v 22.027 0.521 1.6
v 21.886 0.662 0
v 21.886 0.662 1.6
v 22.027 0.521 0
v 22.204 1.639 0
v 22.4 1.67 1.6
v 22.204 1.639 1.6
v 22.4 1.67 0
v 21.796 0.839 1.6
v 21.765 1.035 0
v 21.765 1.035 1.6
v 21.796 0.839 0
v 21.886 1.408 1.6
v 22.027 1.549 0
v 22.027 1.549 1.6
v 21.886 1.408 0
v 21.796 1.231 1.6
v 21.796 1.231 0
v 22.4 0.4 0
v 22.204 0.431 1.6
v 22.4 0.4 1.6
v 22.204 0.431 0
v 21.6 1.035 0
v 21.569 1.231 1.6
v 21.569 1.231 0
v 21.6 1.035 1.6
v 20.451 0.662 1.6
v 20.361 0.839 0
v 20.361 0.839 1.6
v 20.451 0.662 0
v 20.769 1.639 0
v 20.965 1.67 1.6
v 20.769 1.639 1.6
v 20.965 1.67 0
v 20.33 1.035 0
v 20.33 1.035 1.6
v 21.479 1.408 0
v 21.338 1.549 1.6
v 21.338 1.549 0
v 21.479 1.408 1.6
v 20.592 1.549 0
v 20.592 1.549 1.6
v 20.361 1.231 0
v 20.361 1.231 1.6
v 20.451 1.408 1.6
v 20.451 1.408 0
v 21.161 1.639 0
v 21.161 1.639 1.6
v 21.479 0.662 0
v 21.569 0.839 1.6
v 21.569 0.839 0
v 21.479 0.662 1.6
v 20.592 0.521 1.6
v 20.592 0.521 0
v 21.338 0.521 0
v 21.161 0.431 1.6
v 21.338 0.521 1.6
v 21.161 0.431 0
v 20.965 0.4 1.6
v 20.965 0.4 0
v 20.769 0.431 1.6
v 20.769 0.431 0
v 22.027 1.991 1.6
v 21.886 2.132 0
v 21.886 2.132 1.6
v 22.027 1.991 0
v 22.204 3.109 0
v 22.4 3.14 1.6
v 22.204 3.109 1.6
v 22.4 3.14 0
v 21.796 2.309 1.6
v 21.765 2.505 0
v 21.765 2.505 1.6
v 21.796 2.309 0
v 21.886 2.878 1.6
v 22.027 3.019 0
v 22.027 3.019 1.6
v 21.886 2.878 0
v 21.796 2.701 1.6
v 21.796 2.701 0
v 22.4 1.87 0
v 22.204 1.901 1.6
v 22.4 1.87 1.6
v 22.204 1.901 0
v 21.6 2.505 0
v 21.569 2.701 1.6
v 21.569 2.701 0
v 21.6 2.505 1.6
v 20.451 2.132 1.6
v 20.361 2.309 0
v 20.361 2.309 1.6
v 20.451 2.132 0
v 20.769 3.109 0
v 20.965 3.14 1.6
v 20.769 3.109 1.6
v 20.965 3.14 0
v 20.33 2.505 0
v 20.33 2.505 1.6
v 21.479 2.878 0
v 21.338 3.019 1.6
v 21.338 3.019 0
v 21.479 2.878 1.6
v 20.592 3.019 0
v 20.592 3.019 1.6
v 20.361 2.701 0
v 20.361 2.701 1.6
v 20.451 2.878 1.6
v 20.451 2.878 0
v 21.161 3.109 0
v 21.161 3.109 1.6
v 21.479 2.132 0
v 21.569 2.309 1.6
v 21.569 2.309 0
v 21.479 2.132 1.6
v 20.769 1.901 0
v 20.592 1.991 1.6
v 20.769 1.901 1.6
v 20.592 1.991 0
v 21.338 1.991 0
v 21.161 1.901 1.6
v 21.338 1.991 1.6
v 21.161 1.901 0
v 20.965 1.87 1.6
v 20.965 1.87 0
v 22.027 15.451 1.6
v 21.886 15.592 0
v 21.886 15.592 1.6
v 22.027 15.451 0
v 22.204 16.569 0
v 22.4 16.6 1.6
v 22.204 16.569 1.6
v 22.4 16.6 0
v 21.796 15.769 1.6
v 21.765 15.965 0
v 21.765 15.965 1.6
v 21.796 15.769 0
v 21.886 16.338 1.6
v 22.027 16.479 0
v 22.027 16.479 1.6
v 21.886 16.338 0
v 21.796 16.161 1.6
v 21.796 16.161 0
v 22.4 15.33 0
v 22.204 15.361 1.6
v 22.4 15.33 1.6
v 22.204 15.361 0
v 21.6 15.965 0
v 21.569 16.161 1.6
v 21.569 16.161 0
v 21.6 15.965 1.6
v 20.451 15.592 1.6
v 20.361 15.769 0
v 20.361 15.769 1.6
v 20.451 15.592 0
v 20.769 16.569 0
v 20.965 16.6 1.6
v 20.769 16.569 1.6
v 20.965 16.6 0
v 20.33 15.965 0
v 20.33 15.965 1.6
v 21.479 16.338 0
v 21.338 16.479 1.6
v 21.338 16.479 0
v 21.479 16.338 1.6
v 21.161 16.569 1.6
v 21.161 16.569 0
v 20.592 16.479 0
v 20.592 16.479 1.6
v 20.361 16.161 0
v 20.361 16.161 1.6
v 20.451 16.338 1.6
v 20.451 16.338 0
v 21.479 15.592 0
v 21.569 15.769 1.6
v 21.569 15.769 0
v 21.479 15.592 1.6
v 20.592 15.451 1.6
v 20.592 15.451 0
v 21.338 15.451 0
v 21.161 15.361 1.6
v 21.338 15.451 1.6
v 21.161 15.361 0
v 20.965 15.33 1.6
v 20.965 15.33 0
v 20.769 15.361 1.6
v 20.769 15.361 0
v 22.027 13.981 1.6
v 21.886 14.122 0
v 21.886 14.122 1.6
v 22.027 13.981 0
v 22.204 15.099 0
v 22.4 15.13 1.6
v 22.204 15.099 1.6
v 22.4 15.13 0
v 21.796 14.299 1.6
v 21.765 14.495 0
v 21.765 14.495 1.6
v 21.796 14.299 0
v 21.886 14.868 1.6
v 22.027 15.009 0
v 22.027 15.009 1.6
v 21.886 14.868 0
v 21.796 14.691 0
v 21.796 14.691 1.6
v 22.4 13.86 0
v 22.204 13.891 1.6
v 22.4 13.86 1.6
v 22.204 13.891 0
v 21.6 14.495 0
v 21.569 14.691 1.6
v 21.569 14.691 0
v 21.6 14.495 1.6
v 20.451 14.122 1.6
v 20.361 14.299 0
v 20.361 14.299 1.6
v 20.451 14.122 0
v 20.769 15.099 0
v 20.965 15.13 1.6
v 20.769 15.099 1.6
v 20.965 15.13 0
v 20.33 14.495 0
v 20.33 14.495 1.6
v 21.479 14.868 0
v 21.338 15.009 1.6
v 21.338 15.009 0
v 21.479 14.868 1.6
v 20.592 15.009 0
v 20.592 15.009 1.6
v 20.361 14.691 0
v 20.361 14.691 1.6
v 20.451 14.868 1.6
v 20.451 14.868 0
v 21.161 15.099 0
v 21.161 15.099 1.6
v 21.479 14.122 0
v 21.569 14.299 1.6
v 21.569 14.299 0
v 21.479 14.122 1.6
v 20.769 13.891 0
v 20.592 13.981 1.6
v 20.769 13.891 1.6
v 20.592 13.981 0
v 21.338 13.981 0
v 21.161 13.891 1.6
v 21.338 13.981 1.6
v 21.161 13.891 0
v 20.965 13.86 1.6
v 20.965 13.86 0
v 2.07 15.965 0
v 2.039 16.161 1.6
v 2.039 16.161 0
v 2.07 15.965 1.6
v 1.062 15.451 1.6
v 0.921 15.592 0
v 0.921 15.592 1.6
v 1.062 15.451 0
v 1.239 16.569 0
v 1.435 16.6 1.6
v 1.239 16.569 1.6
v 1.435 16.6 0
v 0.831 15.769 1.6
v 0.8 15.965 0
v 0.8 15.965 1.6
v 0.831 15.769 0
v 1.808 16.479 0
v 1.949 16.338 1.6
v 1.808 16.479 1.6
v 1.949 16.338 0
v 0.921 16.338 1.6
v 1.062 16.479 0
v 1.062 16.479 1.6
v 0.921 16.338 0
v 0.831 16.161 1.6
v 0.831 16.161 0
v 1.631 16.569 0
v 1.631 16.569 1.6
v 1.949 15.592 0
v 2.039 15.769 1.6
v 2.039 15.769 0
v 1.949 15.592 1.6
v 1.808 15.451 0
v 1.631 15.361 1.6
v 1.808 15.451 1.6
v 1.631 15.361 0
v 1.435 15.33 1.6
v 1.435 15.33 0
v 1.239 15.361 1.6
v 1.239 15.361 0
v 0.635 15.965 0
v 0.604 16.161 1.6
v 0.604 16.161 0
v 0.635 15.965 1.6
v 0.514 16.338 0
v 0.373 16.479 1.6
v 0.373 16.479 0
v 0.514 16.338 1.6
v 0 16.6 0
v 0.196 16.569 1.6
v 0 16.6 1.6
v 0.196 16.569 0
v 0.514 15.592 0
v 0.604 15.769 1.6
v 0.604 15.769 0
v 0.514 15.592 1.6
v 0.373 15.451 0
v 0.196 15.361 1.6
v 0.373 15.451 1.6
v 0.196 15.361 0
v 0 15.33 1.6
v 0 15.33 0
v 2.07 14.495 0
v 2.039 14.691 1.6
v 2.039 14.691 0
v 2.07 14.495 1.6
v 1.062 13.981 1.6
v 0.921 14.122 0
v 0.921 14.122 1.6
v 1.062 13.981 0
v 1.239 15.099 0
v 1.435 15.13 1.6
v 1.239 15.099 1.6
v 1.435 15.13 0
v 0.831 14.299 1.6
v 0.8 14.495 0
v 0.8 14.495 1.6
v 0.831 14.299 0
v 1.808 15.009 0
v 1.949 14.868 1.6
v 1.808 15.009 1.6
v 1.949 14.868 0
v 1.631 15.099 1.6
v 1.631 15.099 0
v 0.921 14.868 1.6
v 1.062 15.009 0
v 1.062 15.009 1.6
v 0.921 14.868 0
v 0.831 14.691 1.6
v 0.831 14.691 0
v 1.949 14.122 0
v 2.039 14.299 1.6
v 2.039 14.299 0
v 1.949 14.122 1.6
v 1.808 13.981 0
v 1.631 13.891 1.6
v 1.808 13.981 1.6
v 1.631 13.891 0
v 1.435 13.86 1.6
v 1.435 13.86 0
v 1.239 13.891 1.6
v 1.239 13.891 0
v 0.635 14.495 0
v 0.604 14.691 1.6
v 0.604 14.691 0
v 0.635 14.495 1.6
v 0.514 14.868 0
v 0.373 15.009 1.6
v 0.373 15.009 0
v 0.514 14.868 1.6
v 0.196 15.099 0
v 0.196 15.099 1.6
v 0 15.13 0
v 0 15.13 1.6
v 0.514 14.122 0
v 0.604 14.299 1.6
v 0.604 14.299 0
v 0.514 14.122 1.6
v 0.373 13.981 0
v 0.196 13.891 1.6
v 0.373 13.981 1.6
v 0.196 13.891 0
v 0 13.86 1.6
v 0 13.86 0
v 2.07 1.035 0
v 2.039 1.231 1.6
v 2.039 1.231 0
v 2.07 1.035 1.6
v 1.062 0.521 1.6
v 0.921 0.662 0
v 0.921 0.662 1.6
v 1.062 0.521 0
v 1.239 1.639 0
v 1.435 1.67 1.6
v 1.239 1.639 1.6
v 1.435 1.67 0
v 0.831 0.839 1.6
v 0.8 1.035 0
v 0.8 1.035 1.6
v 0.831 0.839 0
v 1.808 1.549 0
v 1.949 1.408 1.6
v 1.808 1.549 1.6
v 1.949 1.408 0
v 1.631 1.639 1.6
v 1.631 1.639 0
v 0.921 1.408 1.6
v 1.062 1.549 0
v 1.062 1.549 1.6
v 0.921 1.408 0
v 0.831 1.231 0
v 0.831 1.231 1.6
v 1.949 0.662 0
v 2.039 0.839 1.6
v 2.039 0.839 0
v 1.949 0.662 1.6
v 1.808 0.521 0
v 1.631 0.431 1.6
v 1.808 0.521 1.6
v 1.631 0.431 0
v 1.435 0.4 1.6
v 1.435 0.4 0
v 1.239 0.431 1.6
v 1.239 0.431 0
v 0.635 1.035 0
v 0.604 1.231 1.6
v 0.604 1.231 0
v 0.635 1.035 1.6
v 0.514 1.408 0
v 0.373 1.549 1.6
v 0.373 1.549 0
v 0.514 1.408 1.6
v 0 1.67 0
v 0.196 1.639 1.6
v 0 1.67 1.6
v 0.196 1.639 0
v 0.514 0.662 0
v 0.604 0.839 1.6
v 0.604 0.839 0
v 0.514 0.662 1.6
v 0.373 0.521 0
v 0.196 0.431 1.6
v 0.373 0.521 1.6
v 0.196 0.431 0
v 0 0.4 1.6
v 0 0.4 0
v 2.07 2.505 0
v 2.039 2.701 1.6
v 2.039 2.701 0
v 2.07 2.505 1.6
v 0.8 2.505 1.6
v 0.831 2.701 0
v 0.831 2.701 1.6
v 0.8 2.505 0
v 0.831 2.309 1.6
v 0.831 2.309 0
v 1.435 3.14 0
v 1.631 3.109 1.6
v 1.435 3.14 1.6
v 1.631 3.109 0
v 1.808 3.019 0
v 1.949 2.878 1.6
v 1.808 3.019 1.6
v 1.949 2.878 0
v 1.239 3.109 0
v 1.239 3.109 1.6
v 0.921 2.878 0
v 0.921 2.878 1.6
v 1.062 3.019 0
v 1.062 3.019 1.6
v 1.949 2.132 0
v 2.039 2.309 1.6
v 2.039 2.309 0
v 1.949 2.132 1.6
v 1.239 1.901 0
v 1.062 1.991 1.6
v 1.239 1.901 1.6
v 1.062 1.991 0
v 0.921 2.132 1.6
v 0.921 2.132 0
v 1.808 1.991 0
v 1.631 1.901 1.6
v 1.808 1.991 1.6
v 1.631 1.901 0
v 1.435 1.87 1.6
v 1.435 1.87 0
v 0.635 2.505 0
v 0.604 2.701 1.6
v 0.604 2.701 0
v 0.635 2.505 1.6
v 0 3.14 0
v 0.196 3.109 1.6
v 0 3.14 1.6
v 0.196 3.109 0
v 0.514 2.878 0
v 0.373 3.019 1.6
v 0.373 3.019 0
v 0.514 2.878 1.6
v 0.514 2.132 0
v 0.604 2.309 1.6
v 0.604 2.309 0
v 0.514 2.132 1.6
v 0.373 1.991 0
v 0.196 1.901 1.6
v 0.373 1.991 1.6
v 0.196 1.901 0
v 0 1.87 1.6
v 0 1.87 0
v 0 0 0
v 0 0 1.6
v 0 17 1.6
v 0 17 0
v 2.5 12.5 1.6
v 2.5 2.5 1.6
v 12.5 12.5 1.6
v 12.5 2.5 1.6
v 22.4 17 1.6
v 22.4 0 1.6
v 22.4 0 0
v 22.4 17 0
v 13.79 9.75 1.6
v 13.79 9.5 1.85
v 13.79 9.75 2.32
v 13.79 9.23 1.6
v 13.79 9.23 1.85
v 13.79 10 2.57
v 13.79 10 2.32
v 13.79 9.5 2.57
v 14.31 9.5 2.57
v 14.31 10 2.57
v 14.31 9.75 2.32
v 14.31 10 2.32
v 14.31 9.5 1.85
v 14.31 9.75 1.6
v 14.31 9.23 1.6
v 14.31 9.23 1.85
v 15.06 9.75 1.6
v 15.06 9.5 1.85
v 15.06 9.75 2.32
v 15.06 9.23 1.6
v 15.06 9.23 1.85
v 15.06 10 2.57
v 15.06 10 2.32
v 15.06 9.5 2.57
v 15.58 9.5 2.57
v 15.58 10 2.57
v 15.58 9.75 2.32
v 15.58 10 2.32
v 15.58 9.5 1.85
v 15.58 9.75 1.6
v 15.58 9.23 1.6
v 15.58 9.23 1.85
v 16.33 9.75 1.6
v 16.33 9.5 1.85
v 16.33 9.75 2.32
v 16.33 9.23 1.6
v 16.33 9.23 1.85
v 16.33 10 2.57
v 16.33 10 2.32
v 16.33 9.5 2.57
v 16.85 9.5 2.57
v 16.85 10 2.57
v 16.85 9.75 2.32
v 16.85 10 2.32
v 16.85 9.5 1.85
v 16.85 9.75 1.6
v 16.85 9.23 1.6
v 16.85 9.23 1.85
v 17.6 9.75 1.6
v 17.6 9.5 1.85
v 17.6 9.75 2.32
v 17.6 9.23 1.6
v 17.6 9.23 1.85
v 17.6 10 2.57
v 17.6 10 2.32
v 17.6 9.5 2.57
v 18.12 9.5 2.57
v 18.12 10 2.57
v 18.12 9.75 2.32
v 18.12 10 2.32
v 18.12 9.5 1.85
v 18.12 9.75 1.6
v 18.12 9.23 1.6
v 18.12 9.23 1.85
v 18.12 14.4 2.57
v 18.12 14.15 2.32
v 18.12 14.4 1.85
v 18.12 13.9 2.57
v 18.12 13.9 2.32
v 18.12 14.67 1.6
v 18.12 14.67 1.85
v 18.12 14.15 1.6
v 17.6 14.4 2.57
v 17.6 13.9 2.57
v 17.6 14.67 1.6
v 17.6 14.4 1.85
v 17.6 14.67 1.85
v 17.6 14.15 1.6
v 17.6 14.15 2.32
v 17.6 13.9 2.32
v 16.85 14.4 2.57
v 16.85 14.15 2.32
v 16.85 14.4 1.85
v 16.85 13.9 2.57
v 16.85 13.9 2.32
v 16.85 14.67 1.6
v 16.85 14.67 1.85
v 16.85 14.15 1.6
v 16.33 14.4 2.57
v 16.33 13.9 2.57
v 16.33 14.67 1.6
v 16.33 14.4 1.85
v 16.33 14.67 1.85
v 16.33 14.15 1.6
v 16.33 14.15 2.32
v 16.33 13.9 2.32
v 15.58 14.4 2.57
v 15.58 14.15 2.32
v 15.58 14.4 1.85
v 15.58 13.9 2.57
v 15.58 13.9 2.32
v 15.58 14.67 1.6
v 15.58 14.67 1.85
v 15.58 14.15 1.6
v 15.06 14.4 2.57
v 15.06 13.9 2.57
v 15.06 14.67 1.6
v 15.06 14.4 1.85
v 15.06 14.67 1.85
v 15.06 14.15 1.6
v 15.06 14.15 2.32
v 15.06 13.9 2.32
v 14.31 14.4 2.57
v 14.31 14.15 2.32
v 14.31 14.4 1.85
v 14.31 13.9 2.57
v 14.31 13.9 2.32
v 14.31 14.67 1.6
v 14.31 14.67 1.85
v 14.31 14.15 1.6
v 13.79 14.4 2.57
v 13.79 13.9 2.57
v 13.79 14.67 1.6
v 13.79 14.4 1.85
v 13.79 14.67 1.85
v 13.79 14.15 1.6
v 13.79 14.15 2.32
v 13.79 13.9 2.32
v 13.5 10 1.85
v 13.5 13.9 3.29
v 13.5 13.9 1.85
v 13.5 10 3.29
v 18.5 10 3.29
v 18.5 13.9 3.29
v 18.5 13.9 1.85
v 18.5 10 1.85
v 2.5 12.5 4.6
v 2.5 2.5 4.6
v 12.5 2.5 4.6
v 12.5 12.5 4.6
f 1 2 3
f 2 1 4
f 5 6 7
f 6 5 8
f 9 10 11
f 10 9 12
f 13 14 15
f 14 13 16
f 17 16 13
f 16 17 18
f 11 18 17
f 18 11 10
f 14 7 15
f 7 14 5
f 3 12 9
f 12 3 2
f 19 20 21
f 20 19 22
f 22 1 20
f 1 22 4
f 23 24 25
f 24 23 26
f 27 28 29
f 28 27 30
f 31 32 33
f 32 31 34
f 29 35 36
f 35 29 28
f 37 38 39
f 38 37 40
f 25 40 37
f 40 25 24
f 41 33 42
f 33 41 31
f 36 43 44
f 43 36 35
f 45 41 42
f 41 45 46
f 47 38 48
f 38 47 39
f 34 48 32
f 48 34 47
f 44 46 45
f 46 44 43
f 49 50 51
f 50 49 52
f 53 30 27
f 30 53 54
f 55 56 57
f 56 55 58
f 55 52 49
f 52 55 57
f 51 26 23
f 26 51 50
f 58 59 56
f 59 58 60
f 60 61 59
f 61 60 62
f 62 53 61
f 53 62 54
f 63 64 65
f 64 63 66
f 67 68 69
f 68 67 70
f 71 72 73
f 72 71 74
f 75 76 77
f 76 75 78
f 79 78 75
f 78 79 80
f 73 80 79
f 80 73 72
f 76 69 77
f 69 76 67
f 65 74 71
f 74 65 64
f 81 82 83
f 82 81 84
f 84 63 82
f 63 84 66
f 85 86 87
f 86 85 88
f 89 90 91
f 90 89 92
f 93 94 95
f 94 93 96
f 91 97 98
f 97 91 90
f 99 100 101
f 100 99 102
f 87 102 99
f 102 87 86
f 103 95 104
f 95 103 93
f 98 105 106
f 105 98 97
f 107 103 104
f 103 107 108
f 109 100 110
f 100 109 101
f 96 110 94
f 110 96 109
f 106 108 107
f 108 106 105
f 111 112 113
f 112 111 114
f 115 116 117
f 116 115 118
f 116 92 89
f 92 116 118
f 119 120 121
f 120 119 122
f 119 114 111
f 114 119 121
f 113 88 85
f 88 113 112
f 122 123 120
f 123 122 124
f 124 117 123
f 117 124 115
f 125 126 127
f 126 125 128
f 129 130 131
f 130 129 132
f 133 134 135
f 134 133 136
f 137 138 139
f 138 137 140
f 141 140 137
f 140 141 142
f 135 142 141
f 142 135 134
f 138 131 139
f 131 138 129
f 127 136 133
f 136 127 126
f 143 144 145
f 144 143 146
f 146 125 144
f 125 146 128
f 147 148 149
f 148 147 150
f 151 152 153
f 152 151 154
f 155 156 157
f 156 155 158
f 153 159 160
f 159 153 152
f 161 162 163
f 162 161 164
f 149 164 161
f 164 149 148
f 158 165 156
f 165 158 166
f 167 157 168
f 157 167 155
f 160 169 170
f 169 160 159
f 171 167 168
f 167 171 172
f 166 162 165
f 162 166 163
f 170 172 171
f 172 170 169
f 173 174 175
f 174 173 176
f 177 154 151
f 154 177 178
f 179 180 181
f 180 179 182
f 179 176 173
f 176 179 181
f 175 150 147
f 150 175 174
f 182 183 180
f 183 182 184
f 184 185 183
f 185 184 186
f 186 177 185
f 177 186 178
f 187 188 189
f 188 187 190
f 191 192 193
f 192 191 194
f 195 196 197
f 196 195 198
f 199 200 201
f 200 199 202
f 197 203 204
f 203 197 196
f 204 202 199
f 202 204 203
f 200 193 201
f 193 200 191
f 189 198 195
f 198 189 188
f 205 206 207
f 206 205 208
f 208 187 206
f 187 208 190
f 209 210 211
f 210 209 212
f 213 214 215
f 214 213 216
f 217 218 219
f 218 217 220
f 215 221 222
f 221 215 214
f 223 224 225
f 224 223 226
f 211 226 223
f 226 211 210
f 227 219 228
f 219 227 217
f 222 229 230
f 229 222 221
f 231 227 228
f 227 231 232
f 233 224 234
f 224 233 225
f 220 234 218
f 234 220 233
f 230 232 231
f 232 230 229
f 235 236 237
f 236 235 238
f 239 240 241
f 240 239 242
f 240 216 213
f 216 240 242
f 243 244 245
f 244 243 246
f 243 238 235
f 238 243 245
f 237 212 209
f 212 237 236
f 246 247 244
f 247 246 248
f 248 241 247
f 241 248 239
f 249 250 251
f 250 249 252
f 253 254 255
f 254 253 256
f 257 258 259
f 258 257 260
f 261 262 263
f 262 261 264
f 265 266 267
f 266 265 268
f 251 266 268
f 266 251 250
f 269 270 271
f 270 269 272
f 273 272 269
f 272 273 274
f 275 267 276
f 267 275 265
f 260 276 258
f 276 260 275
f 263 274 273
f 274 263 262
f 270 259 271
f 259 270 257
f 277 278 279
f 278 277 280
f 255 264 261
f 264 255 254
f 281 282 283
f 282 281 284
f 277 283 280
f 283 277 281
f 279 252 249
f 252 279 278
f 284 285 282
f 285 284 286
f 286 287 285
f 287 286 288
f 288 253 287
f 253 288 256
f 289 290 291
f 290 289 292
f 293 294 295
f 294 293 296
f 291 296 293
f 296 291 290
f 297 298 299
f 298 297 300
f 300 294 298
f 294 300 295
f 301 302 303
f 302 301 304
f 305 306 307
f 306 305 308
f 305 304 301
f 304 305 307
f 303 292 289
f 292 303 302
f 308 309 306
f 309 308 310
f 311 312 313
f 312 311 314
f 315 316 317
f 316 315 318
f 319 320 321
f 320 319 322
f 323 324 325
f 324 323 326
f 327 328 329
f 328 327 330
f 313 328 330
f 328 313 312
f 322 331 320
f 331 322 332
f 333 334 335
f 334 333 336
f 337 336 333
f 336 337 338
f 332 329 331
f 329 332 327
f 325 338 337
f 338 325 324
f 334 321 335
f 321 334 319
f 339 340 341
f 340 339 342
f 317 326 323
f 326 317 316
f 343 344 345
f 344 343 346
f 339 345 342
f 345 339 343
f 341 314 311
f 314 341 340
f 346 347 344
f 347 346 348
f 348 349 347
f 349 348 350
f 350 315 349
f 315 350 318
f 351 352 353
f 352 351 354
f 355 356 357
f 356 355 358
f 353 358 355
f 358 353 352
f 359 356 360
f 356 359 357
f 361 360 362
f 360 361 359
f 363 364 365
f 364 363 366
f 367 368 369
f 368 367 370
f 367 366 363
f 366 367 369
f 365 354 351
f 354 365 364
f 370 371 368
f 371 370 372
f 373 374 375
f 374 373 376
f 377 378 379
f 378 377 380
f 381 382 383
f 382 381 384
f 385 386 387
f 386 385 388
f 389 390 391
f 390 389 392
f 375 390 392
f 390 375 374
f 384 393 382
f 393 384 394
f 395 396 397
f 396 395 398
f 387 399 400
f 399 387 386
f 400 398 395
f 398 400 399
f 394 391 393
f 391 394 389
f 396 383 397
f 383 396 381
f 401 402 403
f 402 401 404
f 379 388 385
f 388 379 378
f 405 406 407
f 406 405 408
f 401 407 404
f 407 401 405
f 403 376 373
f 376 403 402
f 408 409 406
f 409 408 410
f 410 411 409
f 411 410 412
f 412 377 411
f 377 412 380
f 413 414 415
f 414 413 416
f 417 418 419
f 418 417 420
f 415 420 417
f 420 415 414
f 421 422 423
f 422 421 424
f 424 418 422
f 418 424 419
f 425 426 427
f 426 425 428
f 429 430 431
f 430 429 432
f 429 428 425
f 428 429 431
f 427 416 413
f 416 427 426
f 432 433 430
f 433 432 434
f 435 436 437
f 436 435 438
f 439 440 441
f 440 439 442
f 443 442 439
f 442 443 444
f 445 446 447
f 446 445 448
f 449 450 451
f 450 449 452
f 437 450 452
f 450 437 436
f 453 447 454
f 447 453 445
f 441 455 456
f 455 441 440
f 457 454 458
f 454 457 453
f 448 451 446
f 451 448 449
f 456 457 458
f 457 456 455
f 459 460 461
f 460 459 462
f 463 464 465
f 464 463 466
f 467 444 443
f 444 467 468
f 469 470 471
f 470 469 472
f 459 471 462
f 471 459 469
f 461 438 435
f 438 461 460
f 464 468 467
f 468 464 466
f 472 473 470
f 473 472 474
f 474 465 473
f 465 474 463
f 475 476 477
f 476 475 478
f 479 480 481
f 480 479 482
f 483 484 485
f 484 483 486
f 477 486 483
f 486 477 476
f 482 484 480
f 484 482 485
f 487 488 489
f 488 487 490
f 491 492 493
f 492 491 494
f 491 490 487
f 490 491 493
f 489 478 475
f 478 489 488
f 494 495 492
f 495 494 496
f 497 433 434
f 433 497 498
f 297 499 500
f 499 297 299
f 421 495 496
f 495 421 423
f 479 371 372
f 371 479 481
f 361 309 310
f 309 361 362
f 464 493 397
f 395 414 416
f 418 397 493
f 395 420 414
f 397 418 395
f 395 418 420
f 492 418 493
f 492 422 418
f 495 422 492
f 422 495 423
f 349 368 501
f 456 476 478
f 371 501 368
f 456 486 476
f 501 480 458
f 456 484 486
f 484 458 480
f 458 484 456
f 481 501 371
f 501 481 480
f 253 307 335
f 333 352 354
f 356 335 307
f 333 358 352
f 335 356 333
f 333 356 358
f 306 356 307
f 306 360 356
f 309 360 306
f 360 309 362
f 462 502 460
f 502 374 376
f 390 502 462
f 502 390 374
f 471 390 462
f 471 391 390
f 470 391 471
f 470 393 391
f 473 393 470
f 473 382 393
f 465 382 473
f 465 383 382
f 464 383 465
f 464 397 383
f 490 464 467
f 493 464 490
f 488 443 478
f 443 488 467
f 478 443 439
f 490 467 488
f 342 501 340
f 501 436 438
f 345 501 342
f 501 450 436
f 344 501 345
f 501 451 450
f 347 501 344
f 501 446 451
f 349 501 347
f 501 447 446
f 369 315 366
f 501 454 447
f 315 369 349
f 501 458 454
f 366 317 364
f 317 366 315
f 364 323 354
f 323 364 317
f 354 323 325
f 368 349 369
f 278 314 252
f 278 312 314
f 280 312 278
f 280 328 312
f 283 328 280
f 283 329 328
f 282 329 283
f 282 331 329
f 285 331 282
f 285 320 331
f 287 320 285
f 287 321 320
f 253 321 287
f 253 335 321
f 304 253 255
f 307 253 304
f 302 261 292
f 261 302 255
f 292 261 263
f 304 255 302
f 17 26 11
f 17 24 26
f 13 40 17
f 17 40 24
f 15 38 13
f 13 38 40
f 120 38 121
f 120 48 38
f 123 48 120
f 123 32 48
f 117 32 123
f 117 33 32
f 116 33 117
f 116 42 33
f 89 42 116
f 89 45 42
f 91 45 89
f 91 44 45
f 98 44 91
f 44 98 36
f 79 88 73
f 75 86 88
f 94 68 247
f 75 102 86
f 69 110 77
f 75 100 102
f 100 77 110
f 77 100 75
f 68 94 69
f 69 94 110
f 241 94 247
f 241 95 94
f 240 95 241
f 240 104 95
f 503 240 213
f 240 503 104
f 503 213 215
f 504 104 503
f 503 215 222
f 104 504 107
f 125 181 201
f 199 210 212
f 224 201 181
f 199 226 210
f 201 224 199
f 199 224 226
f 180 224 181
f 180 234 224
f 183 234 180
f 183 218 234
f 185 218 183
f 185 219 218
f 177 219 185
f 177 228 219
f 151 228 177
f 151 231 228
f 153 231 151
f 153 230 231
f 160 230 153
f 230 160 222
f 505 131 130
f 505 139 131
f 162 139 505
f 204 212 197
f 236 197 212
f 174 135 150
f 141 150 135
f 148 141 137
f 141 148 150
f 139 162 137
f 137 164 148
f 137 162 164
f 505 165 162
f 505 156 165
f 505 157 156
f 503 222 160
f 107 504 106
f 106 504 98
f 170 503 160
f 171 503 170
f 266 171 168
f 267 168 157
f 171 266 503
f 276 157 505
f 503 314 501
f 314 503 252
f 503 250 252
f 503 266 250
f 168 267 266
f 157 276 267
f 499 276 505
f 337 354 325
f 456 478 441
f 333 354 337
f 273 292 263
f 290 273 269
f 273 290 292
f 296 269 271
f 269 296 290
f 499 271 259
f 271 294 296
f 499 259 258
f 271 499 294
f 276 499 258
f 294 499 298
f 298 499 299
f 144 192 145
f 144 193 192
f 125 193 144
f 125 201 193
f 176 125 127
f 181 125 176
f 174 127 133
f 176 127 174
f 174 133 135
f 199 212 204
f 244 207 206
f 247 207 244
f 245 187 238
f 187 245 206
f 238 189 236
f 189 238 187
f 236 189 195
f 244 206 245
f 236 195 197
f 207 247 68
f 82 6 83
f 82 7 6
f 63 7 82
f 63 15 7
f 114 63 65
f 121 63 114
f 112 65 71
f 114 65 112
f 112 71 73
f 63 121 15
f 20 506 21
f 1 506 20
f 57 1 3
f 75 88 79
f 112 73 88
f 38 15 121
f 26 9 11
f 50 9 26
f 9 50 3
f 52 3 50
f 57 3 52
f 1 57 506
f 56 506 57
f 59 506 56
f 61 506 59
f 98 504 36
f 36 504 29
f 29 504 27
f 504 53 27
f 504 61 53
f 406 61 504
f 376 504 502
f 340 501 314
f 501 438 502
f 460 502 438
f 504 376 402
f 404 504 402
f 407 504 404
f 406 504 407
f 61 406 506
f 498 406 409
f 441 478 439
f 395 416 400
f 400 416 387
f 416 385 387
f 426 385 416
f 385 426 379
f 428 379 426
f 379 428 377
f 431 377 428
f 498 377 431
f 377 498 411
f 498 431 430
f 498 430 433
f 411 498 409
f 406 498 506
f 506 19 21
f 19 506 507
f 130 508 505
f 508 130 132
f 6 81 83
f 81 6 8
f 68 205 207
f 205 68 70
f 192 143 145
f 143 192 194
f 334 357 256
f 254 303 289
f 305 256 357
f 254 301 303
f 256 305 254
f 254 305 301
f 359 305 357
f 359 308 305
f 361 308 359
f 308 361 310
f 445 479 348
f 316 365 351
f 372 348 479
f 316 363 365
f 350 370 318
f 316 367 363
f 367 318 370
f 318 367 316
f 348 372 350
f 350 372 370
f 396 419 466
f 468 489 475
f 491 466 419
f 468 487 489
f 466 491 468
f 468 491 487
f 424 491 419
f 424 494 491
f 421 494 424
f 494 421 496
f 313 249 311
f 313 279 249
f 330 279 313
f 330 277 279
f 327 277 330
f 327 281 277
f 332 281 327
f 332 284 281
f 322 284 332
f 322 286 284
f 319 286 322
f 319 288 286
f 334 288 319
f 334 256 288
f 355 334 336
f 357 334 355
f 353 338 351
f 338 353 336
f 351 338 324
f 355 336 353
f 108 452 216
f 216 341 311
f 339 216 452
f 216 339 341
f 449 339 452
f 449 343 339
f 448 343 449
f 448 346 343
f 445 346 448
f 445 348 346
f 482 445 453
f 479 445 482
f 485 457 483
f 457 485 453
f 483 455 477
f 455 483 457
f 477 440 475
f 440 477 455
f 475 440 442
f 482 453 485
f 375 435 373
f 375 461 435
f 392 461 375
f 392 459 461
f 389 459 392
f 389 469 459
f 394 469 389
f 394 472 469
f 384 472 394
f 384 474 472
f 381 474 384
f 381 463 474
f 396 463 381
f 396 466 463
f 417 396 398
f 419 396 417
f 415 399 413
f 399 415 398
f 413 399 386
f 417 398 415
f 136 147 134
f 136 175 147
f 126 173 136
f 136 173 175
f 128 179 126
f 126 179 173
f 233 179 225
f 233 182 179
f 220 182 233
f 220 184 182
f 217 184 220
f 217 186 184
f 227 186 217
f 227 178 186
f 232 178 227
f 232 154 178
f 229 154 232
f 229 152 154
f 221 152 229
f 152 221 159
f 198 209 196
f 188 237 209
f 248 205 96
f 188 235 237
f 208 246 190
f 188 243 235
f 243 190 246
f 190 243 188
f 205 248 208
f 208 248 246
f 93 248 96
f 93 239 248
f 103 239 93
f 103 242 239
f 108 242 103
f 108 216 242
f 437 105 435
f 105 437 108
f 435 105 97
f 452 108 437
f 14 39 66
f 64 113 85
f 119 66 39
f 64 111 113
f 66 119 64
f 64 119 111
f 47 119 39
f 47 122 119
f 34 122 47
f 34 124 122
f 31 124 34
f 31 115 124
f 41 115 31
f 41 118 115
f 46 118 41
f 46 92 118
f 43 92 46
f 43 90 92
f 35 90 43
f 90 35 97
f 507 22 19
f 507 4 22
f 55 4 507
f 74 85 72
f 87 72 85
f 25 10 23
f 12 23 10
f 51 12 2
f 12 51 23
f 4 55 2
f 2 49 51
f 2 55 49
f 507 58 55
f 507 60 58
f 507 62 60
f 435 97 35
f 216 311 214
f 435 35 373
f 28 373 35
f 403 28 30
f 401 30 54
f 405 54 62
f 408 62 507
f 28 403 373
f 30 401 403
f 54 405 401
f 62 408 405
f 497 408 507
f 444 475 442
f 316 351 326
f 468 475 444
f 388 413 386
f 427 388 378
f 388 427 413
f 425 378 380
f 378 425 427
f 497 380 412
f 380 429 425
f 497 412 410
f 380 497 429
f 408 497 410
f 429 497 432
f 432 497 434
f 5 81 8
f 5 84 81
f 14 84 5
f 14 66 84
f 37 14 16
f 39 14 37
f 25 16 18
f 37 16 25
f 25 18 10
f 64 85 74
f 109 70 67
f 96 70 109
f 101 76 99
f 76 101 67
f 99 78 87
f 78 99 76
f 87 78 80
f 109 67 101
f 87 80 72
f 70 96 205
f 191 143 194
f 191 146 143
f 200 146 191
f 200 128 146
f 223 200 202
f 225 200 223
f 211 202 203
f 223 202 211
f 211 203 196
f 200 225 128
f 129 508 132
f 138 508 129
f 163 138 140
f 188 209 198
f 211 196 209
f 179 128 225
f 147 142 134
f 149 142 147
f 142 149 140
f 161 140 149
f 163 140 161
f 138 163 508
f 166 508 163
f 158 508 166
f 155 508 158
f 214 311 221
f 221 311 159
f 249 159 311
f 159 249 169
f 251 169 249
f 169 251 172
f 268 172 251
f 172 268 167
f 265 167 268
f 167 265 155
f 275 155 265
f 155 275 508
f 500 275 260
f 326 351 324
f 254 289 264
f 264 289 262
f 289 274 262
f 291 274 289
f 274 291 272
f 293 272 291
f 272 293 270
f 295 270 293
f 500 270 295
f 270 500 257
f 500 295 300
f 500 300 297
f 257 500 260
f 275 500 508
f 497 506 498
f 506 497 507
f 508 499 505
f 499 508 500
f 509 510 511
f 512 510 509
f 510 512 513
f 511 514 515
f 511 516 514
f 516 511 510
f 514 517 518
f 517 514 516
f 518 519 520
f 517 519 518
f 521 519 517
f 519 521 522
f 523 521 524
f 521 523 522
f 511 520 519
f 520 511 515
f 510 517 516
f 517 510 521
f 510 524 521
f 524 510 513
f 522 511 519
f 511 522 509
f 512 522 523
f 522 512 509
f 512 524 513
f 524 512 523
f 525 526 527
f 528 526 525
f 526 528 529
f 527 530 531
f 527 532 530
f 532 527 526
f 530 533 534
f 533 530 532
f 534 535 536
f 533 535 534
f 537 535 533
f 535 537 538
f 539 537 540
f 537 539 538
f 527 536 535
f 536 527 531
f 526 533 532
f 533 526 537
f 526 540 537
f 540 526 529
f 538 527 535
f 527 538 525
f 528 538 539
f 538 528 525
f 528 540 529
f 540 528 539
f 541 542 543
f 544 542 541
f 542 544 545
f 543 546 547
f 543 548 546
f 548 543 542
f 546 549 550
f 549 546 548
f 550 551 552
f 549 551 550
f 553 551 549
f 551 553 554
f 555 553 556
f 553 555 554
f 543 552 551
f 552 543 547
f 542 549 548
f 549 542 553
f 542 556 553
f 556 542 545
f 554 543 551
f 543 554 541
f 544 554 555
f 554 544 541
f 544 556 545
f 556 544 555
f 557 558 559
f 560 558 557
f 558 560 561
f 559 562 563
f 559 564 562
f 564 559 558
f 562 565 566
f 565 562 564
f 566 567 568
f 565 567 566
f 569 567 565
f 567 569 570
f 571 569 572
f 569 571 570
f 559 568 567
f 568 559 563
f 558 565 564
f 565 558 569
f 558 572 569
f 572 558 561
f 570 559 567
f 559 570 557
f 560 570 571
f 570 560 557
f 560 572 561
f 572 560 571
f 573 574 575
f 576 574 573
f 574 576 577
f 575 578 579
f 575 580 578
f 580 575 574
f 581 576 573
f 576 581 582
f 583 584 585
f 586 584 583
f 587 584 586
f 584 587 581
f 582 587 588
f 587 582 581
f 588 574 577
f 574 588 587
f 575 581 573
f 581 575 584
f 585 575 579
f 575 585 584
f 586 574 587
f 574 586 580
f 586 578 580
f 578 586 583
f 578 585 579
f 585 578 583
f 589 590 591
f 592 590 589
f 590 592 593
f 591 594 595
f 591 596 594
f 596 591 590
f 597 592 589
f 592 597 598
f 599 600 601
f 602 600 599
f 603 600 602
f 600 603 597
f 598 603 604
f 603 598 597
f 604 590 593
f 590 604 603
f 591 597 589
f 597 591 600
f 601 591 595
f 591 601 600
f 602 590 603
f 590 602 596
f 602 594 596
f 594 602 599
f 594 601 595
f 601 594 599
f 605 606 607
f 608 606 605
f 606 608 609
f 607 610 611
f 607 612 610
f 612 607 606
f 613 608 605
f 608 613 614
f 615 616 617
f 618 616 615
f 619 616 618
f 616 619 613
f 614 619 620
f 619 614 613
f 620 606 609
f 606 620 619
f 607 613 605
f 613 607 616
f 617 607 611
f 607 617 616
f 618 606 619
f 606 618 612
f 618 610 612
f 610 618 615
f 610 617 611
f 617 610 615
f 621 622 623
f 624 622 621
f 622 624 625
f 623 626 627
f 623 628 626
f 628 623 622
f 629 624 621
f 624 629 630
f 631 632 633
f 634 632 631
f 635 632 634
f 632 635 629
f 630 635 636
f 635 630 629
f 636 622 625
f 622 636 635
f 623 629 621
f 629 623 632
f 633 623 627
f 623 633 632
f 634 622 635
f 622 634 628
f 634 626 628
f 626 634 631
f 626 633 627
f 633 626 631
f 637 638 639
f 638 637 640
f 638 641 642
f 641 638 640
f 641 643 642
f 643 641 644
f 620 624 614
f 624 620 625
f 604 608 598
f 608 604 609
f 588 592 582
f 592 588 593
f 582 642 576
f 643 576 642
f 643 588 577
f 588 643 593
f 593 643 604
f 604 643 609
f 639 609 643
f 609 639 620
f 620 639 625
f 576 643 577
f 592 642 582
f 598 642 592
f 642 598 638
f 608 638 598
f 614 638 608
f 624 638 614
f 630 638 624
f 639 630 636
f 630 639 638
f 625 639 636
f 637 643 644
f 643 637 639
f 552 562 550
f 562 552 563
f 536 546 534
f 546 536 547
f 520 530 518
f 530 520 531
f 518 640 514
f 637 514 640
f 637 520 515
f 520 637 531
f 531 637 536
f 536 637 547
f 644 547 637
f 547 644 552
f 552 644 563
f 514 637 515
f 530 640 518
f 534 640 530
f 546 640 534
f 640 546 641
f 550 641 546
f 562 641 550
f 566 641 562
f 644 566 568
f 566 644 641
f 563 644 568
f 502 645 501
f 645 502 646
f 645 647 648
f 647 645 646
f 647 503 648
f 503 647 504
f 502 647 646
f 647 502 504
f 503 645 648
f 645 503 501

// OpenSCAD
module board() {
	cube([22.4, 17, 1.6]);
}

module holes() {
	translate([(1.27/2) + 0.8, (1.27/2) +  0.4,-0.1])
	cylinder(2, 1.27/2, 1.27/2, $fn=20);
	translate([0, (1.27)/2 + 0.4,-0.1])
	cylinder(2, 1.27/2, 1.27/2, $fn=20);
	
	translate([(1.27/2) + 0.8, (1.27/2) +  0.4 + 1.47,-0.1])
	cylinder(2, 1.27/2, 1.27/2, $fn=20);
	translate([0, (1.27)/2 + 0.4 + 1.47,-0.1])
	cylinder(2, 1.27/2, 1.27/2, $fn=20);

	translate([22.4 - ((1.27/2) + 0.8),0,-0.1]){
	translate([(1.27/2) + 0.8, (1.27/2) +  0.4,0])
	cylinder(2, 1.27/2, 1.27/2, $fn=20);
	translate([0, (1.27)/2 + 0.4,0])
	cylinder(2, 1.27/2, 1.27/2, $fn=20);
	}
	
	translate([22.4 - ((1.27/2) + 0.8),1.47,-0.1]){
	translate([(1.27/2) + 0.8, (1.27/2) +  0.4,0])
	cylinder(2, 1.27/2, 1.27/2, $fn=20);
	translate([0, (1.27)/2 + 0.4,0])
	cylinder(2, 1.27/2, 1.27/2, $fn=20);
	}

	translate([22.4 - ((1.27/2) + 0.8),17 - ((1.27/2) +  0.4)*2,-0.1]){
	translate([(1.27/2) + 0.8, (1.27/2) +  0.4,0])
	cylinder(2, 1.27/2, 1.27/2, $fn=20);
	translate([0, (1.27)/2 + 0.4,0])
	cylinder(2, 1.27/2, 1.27/2, $fn=20);
	}
	
	translate([22.4 - ((1.27/2) + 0.8),17 - (((1.27/2) +  0.4)*2) - 1.47,-0.1]){
	translate([(1.27/2) + 0.8, (1.27/2) +  0.4,0])
	cylinder(2, 1.27/2, 1.27/2, $fn=20);
	translate([0, (1.27)/2 + 0.4,0])
	cylinder(2, 1.27/2, 1.27/2, $fn=20);
	}

	translate([0,17 - ((1.27/2) +  0.4)*2,-0.1]){
	translate([(1.27/2) + 0.8, (1.27/2) +  0.4,])
	cylinder(2, 1.27/2, 1.27/2, $fn=20);
	translate([0, (1.27)/2 + 0.4,0])
	cylinder(2, 1.27/2, 1.27/2, $fn=20);
	}
	
	translate([0,17 - (((1.27/2) +  0.4)*2) - 1.47,-0.1]){
	translate([(1.27/2) + 0.8, (1.27/2) +  0.4,])
	cylinder(2, 1.27/2, 1.27/2, $fn=20);
	translate([0, (1.27)/2 + 0.4,0])
	cylinder(2, 1.27/2, 1.27/2, $fn=20);
	}
}

difference() {
	board();
	holes();
}


translate([2.5,2.5,1.6])
cube([10,10,3]);




module pin() {
	translate([0,0,0.72])
	cube([0.52,0.52,0.25]);
	translate([0,-0.27,0])
	cube([0.52,0.52,0.25]);
	translate([0,0,0.25])
	cube([0.52,0.25,0.72]);
}

module pins() {
	translate([0,-0.50,0]) {
		translate([0,0,0])
		pin();
		translate([1.27*1,0,0])
		pin();
		translate([1.27*2,0,0])
		pin();
		translate([1.27*3,0,0])
		pin();
	}
	
	translate([(3*1.27) + 0.52,0.50+3.9,0])
	rotate([0,0,180]) {
	translate([0,0,0])
	pin();
	translate([1.27*1,0,0])
	pin();
	translate([1.27*2,0,0])
	pin();
	translate([1.27*3,0,0])
	pin();
	}
}

module ic() {
	union() {
		translate([0,0,0.25])
		cube([5,3.9,1.44]);
		translate([0.29,0,0])
		pins();
	}
}
translate([13.5,10,1.6])
ic();
